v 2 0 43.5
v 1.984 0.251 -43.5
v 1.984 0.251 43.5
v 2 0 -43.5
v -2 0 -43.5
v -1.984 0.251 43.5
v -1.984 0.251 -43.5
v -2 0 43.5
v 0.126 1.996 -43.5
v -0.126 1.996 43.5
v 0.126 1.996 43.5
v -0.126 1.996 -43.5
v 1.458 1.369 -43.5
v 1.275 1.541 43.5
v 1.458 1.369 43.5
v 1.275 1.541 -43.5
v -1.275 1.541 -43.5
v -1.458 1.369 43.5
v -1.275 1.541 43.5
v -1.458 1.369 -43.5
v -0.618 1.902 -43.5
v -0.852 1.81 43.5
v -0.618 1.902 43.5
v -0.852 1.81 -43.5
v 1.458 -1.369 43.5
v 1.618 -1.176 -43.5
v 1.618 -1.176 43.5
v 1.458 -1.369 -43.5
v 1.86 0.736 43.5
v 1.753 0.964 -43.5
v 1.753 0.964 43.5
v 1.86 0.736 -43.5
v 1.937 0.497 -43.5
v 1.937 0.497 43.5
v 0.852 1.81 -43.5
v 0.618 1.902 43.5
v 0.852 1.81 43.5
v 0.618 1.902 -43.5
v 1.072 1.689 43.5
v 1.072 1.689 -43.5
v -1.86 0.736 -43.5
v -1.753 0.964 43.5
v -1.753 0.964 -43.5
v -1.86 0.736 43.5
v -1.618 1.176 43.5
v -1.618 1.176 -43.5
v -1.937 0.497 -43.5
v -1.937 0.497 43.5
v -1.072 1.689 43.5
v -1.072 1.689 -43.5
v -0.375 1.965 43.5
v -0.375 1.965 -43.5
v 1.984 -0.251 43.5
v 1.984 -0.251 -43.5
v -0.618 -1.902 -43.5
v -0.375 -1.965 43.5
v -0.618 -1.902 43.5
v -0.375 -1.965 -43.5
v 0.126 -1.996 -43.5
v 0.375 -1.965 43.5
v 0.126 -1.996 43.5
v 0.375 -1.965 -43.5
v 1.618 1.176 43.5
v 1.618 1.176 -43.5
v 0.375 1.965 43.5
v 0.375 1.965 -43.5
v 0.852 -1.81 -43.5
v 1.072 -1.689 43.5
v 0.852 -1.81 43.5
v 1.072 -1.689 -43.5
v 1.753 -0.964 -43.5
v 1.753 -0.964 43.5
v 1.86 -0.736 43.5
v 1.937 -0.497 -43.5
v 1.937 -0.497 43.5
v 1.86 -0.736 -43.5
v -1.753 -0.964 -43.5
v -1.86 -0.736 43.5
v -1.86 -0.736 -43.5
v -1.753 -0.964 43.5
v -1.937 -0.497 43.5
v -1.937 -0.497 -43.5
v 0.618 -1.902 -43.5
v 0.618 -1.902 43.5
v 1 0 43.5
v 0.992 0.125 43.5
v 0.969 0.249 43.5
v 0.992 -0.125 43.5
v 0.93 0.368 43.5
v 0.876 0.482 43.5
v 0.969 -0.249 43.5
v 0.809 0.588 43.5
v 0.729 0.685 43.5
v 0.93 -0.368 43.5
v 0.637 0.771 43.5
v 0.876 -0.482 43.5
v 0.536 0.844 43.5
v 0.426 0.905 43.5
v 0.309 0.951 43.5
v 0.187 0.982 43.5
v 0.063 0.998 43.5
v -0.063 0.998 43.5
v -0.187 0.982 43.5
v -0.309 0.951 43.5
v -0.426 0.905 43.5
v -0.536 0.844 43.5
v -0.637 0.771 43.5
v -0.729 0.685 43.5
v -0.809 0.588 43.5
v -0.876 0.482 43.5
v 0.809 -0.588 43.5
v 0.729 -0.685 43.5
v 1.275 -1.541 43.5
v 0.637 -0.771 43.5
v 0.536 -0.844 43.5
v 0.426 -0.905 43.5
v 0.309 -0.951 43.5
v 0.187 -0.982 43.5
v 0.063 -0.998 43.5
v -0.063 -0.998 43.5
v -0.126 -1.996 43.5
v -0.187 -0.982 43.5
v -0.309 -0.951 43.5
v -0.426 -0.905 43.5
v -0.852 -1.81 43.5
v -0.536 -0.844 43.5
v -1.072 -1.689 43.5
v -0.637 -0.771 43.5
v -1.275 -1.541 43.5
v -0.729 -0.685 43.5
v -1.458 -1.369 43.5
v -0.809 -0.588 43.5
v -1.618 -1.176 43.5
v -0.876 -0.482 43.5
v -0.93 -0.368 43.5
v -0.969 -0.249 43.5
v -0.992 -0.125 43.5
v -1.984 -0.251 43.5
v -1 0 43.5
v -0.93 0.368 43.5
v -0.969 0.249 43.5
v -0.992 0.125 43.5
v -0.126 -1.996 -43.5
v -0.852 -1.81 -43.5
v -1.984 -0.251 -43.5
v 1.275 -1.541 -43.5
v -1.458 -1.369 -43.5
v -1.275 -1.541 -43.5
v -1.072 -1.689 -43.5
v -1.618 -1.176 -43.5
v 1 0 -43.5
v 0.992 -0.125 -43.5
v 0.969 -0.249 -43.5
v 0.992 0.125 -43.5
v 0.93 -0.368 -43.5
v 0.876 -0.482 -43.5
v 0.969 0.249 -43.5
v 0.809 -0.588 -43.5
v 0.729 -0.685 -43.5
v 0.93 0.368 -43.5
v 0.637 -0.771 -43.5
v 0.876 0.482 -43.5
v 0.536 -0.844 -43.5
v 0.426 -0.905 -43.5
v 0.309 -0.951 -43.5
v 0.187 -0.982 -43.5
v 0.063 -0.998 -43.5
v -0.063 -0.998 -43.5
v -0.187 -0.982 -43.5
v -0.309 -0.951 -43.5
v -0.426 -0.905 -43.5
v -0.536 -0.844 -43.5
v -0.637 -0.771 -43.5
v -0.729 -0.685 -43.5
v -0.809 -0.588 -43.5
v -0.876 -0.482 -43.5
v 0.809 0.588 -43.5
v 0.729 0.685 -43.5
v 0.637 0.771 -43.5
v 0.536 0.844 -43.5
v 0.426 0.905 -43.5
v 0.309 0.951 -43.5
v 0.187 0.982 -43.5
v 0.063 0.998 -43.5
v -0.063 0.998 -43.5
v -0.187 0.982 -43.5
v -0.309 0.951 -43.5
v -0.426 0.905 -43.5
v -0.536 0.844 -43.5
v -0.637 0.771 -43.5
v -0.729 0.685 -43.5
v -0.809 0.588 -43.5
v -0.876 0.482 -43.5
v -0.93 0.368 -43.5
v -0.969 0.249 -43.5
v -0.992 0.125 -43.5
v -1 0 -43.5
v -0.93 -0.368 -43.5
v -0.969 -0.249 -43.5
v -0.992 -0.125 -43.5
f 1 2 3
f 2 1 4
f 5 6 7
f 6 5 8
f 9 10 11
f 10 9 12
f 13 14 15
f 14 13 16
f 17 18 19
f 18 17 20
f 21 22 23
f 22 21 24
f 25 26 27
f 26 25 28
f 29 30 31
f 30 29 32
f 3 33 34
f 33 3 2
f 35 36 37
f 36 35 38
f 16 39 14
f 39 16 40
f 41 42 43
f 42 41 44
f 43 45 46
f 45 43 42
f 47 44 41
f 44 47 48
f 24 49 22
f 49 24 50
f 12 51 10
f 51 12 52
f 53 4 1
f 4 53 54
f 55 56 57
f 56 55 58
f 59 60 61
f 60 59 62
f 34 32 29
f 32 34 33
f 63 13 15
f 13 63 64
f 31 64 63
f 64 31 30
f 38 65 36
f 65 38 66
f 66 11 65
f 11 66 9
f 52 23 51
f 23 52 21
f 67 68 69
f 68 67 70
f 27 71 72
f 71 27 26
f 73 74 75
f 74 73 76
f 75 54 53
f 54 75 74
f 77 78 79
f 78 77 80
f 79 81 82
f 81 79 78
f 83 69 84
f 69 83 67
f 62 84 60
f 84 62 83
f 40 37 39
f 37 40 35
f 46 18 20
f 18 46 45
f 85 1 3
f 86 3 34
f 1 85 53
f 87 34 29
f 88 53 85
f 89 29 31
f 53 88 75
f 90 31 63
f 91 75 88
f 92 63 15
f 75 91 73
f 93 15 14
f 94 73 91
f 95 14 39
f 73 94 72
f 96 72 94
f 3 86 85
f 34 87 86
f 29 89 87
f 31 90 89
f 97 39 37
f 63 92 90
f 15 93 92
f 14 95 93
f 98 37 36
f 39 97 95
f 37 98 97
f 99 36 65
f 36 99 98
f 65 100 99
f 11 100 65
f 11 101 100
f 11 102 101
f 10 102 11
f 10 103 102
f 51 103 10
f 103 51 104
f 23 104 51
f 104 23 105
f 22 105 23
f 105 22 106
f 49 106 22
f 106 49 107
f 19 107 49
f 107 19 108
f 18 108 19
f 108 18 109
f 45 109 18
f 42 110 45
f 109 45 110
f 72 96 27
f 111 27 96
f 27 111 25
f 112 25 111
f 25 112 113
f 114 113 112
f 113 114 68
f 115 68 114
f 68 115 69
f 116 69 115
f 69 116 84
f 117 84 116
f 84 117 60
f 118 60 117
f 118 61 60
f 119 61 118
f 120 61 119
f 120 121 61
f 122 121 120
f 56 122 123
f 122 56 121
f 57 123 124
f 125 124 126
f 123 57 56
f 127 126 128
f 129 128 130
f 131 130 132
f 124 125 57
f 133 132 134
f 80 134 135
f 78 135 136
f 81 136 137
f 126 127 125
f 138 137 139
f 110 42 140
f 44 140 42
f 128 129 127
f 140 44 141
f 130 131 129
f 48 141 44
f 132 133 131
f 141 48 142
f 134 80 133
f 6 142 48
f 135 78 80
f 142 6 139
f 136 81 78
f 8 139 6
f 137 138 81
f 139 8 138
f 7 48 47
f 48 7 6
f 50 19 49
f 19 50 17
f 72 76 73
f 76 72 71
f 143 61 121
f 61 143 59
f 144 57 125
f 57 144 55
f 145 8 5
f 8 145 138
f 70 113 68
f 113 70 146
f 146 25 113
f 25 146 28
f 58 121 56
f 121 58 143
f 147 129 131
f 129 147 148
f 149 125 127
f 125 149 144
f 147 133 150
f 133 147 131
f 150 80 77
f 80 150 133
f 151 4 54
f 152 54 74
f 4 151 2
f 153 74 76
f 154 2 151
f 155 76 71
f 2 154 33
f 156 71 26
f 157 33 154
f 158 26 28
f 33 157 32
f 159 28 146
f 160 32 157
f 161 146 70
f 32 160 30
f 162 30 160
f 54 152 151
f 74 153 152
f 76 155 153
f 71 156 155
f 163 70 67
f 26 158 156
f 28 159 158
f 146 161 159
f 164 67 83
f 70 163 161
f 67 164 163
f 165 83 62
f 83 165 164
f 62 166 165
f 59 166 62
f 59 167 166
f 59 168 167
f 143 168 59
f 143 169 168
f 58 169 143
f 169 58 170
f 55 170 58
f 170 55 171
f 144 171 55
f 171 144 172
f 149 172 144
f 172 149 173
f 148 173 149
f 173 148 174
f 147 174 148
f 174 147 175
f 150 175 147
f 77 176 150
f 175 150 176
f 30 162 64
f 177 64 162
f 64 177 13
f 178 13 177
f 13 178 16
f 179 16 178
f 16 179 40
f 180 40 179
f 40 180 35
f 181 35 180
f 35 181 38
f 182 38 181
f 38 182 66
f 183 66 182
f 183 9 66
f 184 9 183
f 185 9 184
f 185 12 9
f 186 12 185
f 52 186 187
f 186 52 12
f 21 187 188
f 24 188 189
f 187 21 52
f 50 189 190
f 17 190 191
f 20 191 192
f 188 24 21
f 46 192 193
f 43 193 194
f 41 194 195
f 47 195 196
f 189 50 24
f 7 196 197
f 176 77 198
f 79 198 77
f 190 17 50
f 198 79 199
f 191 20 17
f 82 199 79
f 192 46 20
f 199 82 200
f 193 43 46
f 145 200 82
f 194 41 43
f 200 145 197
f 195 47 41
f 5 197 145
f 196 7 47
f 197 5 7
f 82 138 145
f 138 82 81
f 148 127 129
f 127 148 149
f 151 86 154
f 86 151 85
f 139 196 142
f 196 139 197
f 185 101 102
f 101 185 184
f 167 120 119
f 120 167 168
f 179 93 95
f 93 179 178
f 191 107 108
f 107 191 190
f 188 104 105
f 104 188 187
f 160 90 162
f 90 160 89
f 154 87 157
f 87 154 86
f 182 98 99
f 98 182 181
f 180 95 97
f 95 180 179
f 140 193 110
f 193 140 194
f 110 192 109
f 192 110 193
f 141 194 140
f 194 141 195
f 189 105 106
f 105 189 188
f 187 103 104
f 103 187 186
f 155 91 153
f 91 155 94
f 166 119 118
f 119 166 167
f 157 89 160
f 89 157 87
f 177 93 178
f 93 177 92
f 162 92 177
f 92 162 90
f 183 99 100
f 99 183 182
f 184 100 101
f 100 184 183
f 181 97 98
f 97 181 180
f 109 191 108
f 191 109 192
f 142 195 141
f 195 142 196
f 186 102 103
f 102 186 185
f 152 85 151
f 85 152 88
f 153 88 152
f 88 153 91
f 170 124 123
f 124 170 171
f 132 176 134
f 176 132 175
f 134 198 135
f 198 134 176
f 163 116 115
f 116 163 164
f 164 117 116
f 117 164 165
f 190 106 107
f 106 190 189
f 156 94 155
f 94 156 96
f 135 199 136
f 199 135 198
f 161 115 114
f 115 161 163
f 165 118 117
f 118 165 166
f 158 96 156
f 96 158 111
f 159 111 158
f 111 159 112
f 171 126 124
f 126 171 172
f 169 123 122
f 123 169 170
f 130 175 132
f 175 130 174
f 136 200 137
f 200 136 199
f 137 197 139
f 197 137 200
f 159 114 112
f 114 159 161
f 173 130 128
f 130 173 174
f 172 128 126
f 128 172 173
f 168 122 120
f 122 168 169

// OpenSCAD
$fn = 50;


difference() {
	union() {
		translate(v = [0, 0, -43.5000000000]) {
			cylinder(h = 87, r = 2.0000000000);
		}
	}
	union() {
		translate(v = [0, 0, -100.0000000000]) {
			cylinder(h = 200, r = 1.0000000000);
		}
	}
}
